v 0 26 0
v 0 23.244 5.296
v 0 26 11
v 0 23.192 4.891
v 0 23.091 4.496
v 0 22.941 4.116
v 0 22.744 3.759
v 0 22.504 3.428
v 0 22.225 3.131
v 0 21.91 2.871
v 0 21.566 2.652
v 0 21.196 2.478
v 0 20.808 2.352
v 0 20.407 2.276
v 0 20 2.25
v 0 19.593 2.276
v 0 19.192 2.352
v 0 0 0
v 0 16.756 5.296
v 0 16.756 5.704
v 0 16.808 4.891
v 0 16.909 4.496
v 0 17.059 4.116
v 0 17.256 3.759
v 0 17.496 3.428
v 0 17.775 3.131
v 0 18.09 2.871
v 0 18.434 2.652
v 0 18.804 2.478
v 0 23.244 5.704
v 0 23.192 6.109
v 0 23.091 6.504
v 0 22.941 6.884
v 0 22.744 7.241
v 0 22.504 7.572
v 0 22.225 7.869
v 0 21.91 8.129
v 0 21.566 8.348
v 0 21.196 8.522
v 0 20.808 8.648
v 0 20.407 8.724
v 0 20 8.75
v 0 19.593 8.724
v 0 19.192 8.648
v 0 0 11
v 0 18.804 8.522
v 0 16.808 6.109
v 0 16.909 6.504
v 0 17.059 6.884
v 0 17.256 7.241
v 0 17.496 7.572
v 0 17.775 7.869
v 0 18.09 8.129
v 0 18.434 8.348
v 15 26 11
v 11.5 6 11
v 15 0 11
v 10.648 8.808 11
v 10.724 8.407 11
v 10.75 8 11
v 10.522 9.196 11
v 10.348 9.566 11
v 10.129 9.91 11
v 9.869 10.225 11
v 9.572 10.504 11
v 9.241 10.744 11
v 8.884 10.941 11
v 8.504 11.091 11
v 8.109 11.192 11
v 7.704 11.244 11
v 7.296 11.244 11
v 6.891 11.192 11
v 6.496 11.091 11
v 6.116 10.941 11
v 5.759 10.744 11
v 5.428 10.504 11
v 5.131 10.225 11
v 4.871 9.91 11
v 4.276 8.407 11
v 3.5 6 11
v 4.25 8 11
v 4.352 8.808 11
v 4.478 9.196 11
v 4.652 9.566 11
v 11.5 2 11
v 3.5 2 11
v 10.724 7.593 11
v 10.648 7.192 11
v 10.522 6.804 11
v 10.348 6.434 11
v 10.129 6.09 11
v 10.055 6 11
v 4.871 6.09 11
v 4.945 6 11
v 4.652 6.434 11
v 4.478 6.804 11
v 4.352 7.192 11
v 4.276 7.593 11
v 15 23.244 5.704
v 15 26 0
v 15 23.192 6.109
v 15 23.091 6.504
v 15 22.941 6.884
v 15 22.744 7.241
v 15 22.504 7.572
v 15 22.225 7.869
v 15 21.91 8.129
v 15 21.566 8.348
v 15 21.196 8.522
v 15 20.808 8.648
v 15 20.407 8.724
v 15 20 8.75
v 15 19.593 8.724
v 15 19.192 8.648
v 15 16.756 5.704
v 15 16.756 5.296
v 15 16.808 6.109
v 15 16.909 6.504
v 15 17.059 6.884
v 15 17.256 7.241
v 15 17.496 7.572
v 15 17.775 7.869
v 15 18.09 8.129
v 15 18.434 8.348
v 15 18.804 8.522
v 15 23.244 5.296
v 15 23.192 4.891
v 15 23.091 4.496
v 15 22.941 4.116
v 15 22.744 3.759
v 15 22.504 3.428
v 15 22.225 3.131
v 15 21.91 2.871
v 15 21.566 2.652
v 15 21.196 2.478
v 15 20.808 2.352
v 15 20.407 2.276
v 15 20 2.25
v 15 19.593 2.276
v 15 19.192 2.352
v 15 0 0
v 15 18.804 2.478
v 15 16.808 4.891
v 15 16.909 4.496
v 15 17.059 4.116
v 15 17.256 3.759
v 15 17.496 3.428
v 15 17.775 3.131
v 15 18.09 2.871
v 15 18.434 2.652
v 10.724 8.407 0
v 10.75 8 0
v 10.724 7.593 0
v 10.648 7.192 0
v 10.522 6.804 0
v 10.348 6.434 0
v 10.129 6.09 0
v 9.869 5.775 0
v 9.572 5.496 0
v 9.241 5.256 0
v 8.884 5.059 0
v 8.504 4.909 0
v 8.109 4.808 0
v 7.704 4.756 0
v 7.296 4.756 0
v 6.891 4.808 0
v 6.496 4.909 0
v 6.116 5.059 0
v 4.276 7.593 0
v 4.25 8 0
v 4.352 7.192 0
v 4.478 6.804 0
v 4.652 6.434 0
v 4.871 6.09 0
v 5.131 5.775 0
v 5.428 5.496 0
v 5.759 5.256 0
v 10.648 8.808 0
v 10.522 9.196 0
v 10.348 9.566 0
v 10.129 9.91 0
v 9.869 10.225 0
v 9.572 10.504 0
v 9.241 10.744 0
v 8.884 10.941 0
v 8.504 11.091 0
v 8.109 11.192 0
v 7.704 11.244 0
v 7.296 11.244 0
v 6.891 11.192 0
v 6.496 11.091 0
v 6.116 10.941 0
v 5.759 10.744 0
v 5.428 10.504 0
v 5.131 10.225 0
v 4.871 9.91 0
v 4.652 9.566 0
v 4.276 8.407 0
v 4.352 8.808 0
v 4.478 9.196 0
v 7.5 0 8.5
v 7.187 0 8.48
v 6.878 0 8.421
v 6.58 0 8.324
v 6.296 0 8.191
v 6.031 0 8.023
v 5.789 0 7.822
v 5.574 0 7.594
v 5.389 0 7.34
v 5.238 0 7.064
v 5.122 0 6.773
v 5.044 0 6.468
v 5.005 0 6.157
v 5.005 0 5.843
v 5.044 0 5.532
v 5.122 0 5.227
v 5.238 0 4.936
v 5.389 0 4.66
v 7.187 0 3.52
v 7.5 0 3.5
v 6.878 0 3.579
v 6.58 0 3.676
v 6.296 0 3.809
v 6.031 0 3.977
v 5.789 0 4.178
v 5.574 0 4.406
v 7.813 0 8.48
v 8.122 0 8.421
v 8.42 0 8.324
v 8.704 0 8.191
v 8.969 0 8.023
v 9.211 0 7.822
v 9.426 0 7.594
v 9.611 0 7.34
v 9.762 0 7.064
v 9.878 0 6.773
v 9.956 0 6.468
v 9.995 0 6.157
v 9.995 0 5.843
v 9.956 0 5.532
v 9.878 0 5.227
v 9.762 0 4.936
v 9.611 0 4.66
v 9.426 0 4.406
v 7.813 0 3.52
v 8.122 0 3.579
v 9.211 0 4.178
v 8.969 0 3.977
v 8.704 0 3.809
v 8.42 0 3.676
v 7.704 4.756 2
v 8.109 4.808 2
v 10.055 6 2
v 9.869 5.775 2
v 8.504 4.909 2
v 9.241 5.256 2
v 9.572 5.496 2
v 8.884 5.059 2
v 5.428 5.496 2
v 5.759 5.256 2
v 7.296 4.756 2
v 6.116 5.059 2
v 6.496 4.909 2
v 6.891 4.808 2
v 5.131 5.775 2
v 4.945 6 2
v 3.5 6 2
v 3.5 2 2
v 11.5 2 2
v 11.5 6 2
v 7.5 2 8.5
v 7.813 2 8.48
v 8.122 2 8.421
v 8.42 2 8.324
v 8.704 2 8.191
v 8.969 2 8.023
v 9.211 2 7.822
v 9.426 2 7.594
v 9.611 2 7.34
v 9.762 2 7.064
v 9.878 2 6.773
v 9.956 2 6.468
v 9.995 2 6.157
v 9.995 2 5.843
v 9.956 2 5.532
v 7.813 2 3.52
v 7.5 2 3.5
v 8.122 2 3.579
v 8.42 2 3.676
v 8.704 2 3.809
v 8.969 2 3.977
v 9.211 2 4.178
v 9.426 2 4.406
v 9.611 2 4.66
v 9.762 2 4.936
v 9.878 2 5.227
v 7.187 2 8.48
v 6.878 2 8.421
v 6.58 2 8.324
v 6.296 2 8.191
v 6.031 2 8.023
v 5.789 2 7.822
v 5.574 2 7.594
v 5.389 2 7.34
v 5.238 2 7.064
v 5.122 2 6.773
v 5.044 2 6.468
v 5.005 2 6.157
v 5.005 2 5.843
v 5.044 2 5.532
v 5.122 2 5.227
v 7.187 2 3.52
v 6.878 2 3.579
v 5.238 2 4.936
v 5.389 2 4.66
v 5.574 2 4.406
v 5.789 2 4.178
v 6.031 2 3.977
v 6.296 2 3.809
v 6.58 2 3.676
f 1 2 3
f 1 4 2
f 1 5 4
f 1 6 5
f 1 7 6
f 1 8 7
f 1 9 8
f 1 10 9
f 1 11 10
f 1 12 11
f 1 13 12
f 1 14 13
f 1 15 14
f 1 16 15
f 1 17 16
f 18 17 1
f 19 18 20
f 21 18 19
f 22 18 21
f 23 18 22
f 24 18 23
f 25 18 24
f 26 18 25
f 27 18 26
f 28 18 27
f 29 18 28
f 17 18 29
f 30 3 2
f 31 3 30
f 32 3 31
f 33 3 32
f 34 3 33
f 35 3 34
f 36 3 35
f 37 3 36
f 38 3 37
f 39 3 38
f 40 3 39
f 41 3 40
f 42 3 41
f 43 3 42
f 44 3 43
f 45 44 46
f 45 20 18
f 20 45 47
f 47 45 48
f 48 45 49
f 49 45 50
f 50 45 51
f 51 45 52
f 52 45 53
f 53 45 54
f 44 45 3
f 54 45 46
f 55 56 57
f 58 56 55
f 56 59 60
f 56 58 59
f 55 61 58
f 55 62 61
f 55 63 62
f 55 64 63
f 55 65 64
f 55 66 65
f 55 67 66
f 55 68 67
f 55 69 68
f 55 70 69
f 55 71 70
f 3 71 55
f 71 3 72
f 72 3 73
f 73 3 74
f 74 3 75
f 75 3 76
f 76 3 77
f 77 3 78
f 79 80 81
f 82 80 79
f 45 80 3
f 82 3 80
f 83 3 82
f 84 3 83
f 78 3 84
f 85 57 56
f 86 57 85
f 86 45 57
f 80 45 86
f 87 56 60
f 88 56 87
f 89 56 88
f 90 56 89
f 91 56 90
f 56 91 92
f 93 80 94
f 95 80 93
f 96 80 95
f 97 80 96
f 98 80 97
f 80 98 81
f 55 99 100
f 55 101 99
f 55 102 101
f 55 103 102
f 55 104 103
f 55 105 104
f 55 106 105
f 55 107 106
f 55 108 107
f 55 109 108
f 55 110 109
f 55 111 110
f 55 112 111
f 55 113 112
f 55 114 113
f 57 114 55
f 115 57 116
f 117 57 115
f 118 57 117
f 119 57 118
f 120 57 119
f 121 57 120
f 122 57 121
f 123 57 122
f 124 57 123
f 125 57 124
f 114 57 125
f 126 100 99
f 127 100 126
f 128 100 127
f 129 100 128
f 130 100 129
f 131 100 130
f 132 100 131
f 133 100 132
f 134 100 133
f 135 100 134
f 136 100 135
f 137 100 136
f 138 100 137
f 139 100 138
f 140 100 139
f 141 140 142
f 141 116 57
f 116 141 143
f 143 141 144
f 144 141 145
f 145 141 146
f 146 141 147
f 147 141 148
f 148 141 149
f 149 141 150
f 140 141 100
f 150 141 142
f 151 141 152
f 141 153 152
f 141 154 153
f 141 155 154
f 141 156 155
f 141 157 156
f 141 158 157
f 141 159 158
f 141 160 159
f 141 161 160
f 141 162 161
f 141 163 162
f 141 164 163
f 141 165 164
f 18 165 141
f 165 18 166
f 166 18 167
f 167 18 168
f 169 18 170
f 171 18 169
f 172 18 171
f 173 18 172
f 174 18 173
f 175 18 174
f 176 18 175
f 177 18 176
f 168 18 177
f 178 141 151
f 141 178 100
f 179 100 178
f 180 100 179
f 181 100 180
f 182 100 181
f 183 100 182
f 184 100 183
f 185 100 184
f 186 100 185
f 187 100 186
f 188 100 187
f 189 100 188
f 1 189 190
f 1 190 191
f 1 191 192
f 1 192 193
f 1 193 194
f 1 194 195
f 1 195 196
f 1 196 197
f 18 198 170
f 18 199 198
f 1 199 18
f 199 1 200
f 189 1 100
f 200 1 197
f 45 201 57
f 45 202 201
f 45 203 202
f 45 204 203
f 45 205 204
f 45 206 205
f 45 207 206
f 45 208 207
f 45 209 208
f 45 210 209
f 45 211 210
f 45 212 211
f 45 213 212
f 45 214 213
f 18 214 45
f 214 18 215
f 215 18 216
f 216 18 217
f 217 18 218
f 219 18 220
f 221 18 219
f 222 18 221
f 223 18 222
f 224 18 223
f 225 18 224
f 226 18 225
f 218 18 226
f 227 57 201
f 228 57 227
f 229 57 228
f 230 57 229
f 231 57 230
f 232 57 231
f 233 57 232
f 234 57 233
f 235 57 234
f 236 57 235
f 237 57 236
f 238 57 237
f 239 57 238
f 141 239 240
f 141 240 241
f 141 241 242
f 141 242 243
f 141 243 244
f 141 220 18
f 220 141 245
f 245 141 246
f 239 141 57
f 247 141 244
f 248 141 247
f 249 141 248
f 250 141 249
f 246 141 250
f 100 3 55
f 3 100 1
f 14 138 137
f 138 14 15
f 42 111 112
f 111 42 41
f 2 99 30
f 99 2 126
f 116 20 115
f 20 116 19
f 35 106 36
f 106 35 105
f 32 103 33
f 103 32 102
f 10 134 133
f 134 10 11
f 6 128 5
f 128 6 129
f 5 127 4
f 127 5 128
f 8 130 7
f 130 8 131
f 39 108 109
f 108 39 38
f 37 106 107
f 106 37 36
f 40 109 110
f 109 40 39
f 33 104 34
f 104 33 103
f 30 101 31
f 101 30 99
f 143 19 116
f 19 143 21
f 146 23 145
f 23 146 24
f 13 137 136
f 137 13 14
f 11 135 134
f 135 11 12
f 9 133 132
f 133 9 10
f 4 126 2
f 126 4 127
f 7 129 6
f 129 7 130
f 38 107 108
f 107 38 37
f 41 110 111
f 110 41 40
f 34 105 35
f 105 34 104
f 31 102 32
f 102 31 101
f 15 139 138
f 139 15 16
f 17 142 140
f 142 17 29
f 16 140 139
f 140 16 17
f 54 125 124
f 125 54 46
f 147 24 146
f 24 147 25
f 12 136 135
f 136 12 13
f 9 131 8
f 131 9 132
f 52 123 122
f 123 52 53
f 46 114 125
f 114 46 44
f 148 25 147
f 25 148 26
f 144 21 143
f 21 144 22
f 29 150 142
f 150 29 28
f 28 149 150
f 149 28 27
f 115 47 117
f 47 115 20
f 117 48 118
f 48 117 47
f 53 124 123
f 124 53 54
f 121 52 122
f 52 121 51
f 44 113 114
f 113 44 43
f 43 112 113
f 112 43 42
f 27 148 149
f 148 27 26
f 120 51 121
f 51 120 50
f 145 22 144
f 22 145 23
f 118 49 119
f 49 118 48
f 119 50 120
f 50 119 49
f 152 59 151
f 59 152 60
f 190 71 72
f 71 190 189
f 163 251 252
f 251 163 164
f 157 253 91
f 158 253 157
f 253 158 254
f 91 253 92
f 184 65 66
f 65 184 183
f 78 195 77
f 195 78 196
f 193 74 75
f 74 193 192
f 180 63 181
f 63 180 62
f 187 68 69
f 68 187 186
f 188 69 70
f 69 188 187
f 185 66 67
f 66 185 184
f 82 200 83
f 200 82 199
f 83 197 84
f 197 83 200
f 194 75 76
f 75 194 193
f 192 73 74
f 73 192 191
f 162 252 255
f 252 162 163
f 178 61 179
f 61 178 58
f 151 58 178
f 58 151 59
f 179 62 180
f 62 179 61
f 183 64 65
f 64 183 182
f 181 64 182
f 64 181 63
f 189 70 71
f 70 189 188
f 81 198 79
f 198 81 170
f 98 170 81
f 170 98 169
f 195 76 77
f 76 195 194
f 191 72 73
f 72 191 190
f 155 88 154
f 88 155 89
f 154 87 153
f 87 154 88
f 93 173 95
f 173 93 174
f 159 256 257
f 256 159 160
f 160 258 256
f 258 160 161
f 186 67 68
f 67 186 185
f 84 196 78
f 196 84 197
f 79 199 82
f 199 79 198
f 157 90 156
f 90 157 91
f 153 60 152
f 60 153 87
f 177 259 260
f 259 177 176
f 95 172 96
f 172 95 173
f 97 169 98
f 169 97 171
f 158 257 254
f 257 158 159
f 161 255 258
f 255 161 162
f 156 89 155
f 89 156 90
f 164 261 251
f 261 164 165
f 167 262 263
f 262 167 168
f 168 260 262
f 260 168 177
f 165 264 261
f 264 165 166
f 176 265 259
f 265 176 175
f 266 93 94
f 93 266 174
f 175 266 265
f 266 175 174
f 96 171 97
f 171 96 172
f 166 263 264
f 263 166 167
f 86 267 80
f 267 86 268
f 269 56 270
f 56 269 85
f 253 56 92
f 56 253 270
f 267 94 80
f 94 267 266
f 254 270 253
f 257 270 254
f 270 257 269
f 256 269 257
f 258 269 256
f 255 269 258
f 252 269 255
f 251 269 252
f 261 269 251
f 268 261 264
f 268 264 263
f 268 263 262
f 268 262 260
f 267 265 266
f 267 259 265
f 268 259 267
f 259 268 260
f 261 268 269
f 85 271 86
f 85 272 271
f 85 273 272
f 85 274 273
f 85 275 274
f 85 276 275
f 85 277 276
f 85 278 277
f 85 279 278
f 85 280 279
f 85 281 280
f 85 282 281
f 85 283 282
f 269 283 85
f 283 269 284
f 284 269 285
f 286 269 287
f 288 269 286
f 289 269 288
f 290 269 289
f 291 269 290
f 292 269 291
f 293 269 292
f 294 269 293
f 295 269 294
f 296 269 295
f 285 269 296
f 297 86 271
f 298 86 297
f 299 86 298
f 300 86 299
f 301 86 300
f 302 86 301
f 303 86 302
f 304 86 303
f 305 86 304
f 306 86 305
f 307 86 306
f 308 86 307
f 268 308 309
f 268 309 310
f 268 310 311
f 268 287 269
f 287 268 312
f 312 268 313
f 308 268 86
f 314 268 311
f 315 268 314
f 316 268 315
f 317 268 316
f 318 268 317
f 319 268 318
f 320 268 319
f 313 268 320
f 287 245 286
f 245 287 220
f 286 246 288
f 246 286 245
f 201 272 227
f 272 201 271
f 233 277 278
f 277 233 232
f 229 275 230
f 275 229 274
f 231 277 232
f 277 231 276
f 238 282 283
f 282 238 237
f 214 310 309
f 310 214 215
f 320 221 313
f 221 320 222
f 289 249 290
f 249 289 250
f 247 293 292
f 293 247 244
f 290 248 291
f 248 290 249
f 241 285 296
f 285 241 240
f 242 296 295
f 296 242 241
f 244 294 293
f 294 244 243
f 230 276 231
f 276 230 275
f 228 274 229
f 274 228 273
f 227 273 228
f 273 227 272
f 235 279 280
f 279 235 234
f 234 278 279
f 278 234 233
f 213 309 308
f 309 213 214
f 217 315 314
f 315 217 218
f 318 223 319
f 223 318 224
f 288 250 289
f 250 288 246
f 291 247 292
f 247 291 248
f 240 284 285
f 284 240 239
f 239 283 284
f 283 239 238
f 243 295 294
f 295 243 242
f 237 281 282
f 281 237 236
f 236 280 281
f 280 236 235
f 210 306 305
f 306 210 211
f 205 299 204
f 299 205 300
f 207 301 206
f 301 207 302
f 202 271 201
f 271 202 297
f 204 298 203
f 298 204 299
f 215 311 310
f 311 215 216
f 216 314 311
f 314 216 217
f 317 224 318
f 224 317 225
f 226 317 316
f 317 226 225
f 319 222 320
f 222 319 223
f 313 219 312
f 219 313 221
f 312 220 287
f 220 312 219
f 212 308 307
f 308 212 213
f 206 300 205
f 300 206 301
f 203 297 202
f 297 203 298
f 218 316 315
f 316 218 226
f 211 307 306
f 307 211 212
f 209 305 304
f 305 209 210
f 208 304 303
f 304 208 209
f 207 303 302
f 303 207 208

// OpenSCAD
$fn=50;
difference() {
    cube([15,26,11]);
    translate([0,20,5.5])rotate(90, v=[0,1,0]) cylinder(15,6.5/2,6.5/2);
    translate([7.5,8,0]) cylinder(15,6.5/2,6.5/2);
    translate([3.5,2,2]) cube([8,4,9]);
    translate([7.5,5,6])rotate(90, v=[0,1,0])rotate(90, v=[1,0,0]) cylinder(15,5/2,5/2);
}
